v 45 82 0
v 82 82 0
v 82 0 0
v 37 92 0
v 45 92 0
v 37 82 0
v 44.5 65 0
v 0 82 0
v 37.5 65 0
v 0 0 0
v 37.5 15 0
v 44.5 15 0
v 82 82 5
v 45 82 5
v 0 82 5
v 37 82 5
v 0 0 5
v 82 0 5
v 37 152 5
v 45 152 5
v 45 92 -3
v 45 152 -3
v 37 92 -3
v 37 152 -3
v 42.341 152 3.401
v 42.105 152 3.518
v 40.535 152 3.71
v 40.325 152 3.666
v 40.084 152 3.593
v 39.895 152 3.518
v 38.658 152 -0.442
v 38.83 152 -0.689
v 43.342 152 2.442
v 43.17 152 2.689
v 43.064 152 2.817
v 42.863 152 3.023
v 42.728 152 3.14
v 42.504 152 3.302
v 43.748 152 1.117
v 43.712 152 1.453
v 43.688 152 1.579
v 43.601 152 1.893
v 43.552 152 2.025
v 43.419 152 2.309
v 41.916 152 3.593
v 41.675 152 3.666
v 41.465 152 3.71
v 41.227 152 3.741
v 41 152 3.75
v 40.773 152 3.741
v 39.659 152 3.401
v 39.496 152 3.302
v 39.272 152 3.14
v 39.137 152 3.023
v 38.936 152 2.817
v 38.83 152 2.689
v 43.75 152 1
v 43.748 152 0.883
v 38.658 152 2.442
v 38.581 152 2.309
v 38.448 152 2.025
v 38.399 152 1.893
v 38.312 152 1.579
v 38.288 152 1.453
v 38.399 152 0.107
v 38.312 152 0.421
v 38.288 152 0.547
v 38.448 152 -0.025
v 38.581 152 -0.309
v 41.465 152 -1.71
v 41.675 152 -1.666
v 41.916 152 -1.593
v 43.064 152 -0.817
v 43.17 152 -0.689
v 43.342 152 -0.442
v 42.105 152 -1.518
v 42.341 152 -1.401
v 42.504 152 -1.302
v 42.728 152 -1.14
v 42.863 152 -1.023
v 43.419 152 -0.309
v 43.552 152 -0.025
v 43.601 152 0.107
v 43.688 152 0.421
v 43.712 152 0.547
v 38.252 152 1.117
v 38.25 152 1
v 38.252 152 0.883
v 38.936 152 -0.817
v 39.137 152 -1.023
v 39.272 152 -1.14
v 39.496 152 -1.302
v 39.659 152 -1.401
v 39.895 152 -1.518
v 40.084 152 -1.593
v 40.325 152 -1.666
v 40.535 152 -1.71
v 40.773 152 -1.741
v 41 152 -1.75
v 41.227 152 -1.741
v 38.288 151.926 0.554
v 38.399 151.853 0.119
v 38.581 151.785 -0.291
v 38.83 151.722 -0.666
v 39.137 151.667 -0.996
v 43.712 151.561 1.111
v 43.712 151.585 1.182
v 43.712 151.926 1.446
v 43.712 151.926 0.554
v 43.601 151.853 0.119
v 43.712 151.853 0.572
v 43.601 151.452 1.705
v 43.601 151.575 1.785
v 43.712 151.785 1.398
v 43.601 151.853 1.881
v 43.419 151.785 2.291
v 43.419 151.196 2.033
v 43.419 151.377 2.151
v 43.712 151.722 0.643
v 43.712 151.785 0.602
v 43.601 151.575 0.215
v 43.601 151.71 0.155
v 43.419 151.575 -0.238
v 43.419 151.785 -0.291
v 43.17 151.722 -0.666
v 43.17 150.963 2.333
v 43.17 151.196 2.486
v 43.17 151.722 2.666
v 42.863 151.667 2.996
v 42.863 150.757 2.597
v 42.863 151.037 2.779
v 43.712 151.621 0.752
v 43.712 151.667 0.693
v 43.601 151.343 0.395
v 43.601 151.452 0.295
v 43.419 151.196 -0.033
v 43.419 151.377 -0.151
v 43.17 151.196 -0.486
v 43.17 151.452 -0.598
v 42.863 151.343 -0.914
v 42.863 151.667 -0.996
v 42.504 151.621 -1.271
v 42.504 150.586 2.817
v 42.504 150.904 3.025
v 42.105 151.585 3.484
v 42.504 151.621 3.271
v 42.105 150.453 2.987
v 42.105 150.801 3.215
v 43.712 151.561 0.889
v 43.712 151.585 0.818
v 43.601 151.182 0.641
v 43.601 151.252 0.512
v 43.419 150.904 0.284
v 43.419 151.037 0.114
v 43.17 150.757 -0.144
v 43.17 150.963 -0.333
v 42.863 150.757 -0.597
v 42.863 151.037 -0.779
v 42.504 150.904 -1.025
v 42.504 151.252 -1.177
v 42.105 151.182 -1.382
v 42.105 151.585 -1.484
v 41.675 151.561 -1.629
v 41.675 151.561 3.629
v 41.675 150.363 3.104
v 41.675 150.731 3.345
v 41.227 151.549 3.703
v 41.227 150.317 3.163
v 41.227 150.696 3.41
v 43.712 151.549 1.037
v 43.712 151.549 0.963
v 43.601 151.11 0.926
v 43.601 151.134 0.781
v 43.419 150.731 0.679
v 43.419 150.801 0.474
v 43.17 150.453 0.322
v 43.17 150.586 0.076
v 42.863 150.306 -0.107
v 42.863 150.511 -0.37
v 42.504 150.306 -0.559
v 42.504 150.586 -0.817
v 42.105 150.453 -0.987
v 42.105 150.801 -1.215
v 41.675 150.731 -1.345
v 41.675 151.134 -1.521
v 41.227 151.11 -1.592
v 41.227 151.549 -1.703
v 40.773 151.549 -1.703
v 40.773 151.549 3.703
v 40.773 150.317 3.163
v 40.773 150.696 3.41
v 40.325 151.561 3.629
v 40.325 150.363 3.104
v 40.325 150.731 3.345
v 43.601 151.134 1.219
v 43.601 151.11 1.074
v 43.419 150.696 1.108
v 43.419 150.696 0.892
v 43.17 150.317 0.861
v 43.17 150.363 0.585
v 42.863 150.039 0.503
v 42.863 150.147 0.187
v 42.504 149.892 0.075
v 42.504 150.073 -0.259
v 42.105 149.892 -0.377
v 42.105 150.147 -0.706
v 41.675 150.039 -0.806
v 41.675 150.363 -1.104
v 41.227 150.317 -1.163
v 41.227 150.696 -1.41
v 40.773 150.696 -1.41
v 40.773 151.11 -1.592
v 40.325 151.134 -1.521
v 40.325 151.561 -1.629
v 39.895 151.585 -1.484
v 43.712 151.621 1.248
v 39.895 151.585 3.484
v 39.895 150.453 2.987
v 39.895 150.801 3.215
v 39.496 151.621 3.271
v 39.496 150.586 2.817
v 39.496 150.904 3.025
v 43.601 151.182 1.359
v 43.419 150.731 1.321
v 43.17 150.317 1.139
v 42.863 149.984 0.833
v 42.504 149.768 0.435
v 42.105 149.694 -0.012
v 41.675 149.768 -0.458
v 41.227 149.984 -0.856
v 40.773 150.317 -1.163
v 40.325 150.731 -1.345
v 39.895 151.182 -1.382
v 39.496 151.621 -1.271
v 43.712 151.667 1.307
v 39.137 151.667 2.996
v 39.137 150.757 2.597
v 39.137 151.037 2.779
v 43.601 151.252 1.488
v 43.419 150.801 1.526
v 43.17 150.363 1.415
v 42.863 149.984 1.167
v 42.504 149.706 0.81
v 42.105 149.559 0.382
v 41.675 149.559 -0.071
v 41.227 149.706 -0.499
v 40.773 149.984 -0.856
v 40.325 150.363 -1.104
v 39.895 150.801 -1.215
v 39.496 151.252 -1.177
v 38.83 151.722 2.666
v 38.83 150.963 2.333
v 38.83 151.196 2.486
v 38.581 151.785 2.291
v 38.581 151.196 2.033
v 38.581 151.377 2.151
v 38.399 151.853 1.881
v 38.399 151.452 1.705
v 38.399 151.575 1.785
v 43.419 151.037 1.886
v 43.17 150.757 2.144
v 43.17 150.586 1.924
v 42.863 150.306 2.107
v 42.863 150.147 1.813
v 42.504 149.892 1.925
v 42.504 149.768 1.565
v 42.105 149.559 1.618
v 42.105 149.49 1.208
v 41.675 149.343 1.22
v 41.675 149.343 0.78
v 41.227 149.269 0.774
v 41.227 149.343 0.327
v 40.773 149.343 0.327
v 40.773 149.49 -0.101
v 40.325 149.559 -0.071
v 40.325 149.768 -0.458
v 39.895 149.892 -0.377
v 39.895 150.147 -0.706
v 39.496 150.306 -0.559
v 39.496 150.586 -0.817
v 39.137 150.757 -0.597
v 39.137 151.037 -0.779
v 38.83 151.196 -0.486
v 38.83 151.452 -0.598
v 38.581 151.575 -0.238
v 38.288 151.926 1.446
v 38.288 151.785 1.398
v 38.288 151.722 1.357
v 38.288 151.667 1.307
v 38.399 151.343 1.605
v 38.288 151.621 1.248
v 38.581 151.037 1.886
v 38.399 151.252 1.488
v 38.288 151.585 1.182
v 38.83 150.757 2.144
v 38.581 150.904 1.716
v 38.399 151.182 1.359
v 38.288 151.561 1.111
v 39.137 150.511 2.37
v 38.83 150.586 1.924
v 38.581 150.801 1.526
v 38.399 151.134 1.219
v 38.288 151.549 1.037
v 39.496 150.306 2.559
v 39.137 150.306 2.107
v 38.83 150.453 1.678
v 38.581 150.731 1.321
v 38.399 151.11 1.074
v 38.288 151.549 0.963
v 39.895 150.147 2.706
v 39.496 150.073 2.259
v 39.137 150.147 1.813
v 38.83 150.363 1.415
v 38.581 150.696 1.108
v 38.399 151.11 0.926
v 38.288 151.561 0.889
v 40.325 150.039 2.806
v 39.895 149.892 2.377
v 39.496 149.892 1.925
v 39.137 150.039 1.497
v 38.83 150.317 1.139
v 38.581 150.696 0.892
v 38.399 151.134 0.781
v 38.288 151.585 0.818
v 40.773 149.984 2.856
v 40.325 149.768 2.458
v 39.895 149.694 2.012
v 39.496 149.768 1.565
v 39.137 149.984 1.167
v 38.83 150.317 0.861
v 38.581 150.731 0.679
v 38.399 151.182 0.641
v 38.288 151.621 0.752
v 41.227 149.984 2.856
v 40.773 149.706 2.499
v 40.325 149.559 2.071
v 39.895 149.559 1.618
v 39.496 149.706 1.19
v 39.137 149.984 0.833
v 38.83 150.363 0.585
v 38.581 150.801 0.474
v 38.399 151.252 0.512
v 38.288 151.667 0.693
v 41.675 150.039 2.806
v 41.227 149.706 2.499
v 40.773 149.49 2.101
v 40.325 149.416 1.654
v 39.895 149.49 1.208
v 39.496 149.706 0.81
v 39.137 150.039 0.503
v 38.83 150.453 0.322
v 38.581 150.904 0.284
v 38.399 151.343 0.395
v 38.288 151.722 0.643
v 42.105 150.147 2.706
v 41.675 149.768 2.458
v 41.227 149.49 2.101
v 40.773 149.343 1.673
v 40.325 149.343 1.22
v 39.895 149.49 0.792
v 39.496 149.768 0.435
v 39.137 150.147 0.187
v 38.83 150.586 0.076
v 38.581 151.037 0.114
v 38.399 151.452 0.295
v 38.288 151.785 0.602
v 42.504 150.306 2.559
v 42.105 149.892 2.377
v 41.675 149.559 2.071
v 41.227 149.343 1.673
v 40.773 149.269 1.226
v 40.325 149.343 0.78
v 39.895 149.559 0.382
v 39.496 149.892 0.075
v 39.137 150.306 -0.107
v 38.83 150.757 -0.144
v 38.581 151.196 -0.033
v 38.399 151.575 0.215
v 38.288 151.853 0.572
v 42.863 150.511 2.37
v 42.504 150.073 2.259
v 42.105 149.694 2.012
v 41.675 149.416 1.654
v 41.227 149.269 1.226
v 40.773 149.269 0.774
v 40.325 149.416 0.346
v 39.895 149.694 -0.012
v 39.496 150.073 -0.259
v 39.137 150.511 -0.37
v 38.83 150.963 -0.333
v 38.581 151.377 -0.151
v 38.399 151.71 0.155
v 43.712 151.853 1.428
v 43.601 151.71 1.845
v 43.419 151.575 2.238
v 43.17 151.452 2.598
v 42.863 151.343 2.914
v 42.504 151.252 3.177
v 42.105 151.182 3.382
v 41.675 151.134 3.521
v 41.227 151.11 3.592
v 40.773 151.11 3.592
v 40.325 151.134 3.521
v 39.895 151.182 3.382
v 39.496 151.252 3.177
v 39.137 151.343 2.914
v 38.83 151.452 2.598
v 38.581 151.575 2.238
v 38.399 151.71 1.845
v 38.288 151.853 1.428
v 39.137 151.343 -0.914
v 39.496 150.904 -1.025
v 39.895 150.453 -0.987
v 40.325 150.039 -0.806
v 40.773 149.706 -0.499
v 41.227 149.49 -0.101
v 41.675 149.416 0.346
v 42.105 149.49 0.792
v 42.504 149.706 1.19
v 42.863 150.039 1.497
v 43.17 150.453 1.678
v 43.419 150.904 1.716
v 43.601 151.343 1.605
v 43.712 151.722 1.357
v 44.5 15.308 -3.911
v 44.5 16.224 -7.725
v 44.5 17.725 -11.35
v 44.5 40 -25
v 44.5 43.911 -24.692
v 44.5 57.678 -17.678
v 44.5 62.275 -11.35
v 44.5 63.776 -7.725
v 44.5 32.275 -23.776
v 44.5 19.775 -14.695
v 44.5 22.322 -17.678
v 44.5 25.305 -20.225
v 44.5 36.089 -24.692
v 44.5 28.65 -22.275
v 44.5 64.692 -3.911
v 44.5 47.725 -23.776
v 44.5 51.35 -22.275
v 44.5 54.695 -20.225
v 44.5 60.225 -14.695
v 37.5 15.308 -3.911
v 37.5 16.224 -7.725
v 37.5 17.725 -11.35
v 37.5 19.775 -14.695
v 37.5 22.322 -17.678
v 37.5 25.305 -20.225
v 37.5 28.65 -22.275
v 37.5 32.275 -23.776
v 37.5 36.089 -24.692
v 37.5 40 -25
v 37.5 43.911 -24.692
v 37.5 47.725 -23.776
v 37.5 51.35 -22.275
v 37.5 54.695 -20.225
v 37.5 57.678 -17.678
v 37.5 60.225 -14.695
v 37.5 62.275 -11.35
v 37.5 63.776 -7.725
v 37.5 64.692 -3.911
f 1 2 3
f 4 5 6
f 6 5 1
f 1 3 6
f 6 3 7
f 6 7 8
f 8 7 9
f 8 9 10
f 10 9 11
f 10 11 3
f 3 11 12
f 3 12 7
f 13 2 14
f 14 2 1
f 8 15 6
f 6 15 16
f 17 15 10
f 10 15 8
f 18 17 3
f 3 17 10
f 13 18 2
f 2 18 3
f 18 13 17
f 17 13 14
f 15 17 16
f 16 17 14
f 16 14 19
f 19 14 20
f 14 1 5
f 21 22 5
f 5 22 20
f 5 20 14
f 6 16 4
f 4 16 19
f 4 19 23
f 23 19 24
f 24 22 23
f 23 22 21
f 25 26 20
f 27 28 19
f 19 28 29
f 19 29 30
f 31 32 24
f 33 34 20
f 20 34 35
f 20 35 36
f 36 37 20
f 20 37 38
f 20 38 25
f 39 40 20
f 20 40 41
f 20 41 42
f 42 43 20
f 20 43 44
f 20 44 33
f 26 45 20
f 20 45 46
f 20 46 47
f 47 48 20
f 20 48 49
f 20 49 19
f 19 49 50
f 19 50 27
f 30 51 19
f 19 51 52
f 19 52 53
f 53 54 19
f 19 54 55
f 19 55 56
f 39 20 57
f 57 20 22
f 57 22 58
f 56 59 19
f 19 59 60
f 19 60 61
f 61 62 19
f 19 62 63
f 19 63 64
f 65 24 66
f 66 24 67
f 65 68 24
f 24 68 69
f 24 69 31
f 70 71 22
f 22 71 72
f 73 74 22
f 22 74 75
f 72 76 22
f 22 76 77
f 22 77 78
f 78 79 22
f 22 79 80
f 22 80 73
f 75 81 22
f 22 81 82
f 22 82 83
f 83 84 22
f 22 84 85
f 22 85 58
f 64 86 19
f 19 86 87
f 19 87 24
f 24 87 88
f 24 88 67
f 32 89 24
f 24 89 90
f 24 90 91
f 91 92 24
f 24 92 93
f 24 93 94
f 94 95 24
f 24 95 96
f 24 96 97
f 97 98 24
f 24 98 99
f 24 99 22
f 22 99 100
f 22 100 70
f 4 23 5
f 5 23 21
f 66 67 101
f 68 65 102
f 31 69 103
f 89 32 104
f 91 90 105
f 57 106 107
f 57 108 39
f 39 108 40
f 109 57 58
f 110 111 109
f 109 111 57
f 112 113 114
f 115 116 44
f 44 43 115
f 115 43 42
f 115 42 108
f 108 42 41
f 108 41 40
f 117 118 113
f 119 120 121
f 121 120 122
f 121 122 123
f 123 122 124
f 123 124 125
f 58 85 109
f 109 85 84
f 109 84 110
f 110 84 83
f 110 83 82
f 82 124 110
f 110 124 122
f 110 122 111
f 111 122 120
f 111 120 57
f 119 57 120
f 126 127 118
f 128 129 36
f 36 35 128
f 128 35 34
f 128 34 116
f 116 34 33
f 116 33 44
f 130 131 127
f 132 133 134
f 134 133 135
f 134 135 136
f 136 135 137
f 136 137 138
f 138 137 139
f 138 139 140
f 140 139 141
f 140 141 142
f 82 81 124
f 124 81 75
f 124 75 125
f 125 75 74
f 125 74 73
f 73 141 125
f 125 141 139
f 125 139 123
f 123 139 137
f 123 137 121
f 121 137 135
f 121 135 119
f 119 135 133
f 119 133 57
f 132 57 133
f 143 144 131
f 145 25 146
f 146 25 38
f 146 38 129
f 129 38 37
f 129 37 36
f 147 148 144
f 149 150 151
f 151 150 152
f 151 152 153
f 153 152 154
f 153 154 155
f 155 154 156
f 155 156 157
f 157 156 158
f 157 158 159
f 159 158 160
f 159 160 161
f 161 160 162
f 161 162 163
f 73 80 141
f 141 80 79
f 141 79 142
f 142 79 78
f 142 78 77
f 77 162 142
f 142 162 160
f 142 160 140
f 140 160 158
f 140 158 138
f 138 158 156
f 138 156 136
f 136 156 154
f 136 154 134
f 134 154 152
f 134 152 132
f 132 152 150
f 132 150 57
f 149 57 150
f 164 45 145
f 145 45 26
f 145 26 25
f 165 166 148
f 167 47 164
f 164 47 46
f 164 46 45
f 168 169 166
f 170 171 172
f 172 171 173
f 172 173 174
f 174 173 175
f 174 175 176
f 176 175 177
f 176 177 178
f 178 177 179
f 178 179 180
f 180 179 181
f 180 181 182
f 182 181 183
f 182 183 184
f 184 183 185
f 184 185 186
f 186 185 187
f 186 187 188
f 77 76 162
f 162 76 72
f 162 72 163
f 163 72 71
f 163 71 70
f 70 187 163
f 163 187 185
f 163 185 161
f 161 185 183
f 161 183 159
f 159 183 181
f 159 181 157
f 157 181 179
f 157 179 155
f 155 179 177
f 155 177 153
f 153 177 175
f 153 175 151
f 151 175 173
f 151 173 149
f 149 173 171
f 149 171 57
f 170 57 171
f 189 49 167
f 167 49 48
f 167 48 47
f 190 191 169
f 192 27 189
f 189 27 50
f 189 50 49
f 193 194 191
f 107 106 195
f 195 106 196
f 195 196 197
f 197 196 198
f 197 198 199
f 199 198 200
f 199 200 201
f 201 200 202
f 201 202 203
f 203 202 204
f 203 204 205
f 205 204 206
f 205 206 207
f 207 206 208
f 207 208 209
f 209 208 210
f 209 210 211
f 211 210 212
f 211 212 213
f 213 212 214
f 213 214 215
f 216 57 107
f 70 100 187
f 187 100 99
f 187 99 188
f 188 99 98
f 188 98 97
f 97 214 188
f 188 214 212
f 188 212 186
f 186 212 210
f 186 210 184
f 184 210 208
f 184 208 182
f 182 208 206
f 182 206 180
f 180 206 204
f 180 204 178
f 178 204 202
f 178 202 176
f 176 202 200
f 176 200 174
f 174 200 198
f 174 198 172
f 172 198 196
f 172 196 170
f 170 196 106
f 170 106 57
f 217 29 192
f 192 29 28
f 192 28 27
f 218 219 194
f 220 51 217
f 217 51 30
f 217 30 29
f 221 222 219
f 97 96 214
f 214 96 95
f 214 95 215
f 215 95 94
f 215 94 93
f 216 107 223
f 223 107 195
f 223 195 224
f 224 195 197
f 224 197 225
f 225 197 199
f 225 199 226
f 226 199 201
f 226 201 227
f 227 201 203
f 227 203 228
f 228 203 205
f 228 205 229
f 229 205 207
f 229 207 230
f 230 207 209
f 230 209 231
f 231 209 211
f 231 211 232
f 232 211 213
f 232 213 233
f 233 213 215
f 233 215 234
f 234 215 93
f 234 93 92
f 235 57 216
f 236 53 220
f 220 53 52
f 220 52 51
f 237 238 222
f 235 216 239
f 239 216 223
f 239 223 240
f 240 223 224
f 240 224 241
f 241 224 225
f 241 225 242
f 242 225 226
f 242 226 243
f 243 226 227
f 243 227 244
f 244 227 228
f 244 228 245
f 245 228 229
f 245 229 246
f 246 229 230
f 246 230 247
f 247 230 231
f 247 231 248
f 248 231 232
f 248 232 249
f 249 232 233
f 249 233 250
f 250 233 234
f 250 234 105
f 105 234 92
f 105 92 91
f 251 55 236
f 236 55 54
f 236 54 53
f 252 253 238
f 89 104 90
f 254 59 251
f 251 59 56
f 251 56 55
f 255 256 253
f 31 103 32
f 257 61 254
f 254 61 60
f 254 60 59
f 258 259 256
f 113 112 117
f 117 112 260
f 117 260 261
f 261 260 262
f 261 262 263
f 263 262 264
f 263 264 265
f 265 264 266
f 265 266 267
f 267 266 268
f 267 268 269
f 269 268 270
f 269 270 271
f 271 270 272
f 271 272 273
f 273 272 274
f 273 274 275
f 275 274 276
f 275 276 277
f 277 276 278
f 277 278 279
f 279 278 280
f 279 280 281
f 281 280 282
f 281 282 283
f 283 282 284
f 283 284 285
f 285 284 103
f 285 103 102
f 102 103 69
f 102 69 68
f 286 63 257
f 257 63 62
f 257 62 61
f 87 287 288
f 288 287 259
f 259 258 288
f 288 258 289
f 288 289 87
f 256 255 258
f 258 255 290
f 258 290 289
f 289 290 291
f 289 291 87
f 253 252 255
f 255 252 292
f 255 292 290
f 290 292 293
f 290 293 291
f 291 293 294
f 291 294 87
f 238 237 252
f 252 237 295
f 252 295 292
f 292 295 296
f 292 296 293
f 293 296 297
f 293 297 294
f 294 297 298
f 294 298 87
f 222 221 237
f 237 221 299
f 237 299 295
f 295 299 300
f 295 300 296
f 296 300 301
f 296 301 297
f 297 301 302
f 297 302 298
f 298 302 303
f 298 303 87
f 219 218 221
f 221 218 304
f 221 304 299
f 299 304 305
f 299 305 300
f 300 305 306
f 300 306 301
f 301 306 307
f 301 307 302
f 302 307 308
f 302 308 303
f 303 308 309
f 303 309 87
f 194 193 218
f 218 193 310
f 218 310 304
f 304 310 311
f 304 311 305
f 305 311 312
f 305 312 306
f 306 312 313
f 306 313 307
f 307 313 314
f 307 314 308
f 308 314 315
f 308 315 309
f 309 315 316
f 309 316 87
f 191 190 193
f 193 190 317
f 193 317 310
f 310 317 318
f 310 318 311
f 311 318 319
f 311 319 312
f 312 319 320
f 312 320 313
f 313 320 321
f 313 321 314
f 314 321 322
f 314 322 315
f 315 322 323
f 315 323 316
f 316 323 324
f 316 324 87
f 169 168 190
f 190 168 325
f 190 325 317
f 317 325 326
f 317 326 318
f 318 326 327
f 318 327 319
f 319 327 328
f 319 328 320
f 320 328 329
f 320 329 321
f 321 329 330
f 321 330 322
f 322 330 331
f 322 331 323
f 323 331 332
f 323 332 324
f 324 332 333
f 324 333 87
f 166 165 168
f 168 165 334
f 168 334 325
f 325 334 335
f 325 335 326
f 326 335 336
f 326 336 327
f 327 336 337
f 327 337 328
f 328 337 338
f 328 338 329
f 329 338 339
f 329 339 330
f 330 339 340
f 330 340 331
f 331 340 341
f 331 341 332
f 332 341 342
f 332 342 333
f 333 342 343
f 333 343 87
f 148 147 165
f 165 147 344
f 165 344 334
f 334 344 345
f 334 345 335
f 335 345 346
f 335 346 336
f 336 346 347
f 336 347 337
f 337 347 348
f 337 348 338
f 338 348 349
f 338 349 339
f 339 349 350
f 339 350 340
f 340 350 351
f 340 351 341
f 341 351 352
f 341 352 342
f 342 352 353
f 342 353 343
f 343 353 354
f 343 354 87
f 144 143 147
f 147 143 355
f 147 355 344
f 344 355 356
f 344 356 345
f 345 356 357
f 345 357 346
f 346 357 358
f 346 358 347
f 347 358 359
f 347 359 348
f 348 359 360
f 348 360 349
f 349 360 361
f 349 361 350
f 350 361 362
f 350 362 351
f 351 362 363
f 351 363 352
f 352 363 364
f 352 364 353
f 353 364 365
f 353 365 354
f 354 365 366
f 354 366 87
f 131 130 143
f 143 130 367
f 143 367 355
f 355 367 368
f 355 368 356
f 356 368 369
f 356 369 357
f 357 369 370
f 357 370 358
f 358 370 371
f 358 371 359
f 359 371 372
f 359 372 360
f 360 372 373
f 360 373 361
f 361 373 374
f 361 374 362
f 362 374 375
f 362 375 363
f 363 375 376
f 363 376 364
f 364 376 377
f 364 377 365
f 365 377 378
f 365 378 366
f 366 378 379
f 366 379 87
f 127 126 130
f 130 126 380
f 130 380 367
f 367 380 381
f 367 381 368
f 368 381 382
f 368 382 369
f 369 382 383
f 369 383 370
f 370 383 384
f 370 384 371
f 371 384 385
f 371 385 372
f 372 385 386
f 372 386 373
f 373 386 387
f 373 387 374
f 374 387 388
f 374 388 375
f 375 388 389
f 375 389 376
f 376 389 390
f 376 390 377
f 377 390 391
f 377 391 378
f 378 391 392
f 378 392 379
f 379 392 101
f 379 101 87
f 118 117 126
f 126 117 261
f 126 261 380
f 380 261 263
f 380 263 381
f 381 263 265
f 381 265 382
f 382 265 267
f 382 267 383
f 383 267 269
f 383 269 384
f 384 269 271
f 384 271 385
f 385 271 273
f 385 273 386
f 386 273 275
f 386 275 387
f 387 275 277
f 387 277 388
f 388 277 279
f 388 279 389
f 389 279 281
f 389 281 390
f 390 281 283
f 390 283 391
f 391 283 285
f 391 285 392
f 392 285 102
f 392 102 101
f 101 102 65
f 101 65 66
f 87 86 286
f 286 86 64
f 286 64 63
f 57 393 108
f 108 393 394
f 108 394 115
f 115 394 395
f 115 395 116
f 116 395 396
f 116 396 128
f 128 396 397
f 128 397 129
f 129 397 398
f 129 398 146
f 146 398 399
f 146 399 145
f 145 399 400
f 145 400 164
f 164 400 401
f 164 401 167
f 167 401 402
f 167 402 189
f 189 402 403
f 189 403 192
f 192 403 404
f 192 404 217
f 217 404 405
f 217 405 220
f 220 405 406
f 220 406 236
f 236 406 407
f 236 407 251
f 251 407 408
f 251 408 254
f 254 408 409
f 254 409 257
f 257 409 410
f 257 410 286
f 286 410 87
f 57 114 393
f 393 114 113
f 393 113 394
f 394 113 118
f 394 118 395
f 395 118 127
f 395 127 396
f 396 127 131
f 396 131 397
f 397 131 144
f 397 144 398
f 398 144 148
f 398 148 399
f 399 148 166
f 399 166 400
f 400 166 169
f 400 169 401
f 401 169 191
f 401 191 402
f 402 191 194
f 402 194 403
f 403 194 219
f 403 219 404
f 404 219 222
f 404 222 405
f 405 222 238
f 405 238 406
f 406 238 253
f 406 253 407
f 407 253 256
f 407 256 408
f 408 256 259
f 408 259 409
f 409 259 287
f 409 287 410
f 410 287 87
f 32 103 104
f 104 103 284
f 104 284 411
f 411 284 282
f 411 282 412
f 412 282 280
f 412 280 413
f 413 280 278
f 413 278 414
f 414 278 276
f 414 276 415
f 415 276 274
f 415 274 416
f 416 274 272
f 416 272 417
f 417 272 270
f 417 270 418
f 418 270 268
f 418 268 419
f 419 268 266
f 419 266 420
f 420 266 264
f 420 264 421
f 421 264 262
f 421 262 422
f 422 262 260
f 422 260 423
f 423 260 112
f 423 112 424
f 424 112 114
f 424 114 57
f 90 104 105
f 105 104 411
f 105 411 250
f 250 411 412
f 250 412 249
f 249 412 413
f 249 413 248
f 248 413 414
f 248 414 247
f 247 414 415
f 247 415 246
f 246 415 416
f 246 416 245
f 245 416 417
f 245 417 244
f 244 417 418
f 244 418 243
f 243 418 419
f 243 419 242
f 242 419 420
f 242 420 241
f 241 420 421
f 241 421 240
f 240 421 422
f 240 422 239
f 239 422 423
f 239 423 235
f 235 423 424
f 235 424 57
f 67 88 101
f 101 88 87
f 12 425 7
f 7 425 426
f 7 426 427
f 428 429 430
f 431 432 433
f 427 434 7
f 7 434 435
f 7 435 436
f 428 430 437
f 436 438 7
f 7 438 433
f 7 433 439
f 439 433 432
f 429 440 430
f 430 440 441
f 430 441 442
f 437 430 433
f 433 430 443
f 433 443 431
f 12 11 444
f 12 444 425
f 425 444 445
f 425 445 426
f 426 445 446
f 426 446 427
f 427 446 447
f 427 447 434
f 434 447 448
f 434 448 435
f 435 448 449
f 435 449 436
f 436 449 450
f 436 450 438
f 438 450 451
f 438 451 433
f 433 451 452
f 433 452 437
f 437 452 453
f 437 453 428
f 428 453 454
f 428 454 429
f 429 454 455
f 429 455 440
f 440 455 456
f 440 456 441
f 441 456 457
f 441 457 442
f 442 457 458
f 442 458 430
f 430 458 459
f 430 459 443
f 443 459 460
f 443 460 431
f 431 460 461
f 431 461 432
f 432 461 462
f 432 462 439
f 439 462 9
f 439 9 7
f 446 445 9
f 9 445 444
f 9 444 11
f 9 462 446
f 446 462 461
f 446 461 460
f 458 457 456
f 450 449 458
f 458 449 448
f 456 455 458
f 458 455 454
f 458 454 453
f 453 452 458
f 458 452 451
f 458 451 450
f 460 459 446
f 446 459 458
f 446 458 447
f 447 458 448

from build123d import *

# Parameters (mm, degrees)
SKETCH1_W           = 82
SKETCH1_H           = 82
BOSS_EXTRUDE1_DEPTH = 5
SKETCH2_W           = 8
SKETCH2_H           = 5
BOSS_EXTRUDE2_DEPTH = 10
SKETCH4_W           = 8
SKETCH4_H           = 8
BOSS_EXTRUDE4_DEPTH = 60
CUT_REVOLVE1_ANGLE  = 180
SKETCH6_W           = 7
SKETCH6_H           = 25
REVOLVE1_ANGLE      = 180


with BuildPart() as part:
    # Sketch1 → Boss-Extrude1 (new body)
    with BuildSketch(Plane.XY):
        with Locations((41, 41)):
            Rectangle(SKETCH1_W, SKETCH1_H)
    extrude(amount=BOSS_EXTRUDE1_DEPTH)

    # Sketch2 → Boss-Extrude2 (add)
    with BuildSketch(Plane(origin=(0, 82, 0), x_dir=(1, 0, 0), z_dir=(0, 1, 0))):
        with Locations((41, -2.5)):
            Rectangle(SKETCH2_W, SKETCH2_H)
    extrude(amount=BOSS_EXTRUDE2_DEPTH)

    # Sketch4 → Boss-Extrude4 (add)
    with BuildSketch(Plane(origin=(0, 92, 0), x_dir=(1, 0, 0), z_dir=(0, 1, 0))):
        with Locations((41, -1)):
            Rectangle(SKETCH4_W, SKETCH4_H)
    extrude(amount=BOSS_EXTRUDE4_DEPTH)

    # Sketch5 → Cut-Revolve1 (revolve, cut)
    with BuildSketch(Plane(origin=(0, 152, 0), x_dir=(1, 0, 0), z_dir=(0, 1, 0))):
        with BuildLine():
            Line((38.25, -1), (43.75, -1))
            ThreePointArc((43.75, -1), (41, -3.75), (38.25, -1))
        make_face()
    revolve(axis=Axis((38.25, 152, 1), (1, 0, 0)), revolution_arc=CUT_REVOLVE1_ANGLE, mode=Mode.SUBTRACT)

    # Sketch6 → Revolve1 (revolve)
    with BuildSketch(Plane(origin=(0, 0, 0), x_dir=(-1, 0, 0), z_dir=(0, 0, -1))):
        with Locations((-41, 27.5)):
            Rectangle(SKETCH6_W, SKETCH6_H)
    revolve(axis=Axis((37.5, 40, 0), (1, 0, 0)), revolution_arc=REVOLVE1_ANGLE)


solid = part.part
